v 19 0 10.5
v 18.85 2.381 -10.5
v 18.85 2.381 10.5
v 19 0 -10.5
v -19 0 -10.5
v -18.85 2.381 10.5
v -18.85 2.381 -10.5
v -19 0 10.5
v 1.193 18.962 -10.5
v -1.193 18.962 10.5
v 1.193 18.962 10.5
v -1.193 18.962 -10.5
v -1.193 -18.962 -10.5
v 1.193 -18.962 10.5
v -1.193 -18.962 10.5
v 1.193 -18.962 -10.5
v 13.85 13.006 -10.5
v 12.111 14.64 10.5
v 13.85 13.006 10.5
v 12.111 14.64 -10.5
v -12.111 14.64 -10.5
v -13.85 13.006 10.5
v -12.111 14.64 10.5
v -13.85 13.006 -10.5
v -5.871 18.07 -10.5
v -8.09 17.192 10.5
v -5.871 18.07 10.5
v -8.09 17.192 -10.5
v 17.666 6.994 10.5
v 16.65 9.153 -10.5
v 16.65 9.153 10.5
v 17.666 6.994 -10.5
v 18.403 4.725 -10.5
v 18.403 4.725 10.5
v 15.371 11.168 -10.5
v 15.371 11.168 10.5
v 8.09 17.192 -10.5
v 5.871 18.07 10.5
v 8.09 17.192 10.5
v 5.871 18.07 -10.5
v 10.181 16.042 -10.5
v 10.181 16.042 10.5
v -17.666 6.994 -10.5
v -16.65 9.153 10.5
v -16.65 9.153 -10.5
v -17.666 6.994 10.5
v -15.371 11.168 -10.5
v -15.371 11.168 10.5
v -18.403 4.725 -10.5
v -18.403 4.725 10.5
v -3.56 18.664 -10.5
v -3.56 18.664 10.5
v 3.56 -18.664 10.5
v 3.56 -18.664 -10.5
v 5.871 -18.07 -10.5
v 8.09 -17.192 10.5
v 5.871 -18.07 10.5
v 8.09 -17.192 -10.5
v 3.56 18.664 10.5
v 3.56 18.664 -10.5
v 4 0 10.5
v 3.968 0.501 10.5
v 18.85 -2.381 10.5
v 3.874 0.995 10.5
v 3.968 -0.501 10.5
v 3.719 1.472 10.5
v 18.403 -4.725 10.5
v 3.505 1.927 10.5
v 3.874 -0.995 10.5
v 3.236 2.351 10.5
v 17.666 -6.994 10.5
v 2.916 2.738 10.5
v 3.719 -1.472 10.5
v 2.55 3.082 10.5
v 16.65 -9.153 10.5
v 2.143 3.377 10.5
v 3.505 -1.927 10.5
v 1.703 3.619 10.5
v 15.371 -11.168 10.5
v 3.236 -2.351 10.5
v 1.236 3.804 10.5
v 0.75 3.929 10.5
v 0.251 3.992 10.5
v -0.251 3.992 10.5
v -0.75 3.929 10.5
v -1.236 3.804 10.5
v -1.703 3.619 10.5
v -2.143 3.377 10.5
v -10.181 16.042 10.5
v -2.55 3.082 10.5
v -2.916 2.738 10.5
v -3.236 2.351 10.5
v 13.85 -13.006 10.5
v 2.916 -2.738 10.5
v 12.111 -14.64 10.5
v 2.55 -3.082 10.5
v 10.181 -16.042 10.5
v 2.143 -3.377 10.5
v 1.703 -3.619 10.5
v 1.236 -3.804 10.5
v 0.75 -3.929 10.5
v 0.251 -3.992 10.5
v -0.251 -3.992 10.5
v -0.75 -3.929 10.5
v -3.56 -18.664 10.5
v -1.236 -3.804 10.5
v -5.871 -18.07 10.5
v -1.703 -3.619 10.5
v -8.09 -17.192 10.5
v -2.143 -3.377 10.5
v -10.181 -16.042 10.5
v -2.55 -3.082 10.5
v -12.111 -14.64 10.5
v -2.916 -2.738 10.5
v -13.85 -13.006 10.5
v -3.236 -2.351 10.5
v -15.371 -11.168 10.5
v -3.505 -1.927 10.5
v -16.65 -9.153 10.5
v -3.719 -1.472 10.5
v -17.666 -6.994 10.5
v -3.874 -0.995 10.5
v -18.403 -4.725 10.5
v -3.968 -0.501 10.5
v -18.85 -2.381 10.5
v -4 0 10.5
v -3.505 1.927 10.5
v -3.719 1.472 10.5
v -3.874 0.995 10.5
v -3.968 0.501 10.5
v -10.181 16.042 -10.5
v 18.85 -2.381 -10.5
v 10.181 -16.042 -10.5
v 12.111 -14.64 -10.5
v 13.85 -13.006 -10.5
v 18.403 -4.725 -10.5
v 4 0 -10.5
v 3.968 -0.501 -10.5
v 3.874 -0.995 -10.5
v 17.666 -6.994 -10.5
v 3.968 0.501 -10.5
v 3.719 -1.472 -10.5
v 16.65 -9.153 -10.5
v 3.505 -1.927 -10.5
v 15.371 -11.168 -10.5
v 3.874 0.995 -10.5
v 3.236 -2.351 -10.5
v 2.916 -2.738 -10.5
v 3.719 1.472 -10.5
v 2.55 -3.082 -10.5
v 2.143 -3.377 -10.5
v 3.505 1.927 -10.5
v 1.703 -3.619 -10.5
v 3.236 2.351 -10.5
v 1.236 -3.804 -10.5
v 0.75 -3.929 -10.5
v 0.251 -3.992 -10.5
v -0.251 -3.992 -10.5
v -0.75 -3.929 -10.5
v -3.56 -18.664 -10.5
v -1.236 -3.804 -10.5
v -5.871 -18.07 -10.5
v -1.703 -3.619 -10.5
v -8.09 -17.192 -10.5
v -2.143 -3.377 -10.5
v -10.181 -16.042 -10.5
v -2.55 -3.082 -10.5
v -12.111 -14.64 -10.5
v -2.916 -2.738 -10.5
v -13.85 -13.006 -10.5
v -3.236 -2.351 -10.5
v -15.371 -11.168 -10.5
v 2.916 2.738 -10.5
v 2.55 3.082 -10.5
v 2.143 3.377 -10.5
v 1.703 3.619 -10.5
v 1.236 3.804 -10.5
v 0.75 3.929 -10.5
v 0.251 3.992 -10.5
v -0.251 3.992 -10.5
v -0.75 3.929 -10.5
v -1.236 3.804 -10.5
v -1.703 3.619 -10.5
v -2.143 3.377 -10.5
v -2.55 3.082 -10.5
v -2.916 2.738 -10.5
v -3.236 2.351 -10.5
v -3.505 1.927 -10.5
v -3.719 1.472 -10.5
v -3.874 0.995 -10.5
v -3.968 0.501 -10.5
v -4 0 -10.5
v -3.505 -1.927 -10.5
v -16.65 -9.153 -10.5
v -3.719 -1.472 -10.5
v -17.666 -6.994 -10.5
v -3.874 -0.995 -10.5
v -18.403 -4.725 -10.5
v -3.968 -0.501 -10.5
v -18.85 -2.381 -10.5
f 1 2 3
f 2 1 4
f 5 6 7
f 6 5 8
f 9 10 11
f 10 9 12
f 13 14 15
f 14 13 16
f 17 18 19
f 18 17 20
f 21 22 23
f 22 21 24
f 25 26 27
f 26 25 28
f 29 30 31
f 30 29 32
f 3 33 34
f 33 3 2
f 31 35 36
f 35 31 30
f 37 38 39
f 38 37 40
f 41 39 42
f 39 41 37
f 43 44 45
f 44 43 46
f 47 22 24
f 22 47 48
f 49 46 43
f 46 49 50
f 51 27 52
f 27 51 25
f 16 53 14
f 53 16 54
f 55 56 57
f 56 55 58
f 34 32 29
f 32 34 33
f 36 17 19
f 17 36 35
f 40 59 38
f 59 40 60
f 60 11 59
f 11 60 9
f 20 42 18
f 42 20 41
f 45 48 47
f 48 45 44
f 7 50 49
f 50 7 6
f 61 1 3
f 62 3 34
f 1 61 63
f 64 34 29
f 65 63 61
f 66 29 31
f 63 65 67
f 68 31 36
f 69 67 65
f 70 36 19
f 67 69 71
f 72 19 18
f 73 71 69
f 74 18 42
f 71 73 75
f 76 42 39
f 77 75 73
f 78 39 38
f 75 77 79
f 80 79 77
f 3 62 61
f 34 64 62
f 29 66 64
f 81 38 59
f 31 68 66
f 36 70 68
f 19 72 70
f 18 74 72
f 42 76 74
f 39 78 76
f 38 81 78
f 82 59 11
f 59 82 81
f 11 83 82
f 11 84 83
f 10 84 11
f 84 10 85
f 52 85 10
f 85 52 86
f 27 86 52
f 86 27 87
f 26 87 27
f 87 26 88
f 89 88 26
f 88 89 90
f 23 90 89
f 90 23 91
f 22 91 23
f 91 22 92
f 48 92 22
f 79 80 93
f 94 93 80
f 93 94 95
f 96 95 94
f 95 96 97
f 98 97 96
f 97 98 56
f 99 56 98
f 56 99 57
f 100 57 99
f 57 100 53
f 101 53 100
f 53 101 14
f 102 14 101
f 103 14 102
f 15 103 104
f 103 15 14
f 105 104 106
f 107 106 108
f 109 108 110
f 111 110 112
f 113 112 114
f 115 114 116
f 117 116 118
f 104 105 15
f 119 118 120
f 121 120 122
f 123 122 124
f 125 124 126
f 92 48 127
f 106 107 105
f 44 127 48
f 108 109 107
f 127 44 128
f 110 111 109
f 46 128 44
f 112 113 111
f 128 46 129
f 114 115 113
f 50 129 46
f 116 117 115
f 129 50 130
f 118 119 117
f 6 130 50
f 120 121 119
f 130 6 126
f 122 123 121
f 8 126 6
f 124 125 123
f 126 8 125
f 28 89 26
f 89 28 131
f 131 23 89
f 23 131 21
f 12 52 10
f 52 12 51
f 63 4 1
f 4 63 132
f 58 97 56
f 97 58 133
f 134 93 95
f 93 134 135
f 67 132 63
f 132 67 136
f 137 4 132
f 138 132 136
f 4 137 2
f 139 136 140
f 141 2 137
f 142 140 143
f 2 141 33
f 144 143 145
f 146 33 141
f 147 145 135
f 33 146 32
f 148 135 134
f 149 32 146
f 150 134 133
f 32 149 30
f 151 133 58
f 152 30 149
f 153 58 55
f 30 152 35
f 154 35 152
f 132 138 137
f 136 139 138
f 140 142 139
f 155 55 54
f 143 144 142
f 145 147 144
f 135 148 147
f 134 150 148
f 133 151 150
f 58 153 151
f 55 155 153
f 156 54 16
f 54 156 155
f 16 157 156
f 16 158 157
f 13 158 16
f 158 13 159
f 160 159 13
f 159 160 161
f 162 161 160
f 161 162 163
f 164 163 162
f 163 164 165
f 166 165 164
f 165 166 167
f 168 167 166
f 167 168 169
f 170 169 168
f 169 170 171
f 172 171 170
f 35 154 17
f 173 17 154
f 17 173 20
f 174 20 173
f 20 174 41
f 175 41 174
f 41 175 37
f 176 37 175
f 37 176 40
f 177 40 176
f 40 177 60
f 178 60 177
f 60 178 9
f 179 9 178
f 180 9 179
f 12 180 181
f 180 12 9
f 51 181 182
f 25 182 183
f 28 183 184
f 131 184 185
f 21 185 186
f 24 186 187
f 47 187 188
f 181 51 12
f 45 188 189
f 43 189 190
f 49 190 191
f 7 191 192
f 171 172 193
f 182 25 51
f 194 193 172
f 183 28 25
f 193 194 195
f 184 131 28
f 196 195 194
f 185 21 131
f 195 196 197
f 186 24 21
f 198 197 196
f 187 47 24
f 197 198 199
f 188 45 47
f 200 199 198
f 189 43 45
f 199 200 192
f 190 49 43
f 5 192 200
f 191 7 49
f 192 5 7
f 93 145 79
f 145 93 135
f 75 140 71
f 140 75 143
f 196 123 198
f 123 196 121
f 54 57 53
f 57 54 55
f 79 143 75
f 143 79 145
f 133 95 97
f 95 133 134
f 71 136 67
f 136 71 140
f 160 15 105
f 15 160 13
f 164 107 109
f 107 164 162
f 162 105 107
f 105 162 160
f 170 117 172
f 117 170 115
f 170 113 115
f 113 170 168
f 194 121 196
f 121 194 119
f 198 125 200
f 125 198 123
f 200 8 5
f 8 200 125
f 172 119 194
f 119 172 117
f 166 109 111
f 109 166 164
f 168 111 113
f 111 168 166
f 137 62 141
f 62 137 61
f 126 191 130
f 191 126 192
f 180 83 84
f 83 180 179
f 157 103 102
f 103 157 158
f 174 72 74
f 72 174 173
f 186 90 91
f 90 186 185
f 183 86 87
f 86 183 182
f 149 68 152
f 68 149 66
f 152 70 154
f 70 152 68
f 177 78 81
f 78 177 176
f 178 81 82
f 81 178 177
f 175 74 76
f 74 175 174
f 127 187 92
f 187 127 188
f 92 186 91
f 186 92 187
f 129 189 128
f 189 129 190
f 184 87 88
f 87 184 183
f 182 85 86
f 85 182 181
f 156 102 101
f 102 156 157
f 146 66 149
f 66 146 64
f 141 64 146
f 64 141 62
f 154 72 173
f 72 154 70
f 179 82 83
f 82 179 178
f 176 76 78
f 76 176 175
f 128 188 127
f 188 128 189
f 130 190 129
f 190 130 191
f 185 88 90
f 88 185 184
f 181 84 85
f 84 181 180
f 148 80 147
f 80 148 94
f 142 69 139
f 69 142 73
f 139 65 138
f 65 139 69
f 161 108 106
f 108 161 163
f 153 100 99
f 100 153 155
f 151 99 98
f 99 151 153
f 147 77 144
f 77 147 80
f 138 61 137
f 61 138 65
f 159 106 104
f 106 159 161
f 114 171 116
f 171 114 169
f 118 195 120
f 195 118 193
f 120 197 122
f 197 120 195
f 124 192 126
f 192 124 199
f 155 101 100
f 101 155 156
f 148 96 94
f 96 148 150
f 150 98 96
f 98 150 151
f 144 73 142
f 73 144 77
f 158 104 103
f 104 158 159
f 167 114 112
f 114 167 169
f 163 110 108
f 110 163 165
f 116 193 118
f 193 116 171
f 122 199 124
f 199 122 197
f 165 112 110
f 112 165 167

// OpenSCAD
$fn = 50;


difference() {
	union() {
		translate(v = [0, 0, -10.5000000000]) {
			cylinder(h = 21, r = 19.0000000000);
		}
	}
	union() {
		translate(v = [0, 0, -100.0000000000]) {
			cylinder(h = 200, r = 4.0000000000);
		}
	}
}
